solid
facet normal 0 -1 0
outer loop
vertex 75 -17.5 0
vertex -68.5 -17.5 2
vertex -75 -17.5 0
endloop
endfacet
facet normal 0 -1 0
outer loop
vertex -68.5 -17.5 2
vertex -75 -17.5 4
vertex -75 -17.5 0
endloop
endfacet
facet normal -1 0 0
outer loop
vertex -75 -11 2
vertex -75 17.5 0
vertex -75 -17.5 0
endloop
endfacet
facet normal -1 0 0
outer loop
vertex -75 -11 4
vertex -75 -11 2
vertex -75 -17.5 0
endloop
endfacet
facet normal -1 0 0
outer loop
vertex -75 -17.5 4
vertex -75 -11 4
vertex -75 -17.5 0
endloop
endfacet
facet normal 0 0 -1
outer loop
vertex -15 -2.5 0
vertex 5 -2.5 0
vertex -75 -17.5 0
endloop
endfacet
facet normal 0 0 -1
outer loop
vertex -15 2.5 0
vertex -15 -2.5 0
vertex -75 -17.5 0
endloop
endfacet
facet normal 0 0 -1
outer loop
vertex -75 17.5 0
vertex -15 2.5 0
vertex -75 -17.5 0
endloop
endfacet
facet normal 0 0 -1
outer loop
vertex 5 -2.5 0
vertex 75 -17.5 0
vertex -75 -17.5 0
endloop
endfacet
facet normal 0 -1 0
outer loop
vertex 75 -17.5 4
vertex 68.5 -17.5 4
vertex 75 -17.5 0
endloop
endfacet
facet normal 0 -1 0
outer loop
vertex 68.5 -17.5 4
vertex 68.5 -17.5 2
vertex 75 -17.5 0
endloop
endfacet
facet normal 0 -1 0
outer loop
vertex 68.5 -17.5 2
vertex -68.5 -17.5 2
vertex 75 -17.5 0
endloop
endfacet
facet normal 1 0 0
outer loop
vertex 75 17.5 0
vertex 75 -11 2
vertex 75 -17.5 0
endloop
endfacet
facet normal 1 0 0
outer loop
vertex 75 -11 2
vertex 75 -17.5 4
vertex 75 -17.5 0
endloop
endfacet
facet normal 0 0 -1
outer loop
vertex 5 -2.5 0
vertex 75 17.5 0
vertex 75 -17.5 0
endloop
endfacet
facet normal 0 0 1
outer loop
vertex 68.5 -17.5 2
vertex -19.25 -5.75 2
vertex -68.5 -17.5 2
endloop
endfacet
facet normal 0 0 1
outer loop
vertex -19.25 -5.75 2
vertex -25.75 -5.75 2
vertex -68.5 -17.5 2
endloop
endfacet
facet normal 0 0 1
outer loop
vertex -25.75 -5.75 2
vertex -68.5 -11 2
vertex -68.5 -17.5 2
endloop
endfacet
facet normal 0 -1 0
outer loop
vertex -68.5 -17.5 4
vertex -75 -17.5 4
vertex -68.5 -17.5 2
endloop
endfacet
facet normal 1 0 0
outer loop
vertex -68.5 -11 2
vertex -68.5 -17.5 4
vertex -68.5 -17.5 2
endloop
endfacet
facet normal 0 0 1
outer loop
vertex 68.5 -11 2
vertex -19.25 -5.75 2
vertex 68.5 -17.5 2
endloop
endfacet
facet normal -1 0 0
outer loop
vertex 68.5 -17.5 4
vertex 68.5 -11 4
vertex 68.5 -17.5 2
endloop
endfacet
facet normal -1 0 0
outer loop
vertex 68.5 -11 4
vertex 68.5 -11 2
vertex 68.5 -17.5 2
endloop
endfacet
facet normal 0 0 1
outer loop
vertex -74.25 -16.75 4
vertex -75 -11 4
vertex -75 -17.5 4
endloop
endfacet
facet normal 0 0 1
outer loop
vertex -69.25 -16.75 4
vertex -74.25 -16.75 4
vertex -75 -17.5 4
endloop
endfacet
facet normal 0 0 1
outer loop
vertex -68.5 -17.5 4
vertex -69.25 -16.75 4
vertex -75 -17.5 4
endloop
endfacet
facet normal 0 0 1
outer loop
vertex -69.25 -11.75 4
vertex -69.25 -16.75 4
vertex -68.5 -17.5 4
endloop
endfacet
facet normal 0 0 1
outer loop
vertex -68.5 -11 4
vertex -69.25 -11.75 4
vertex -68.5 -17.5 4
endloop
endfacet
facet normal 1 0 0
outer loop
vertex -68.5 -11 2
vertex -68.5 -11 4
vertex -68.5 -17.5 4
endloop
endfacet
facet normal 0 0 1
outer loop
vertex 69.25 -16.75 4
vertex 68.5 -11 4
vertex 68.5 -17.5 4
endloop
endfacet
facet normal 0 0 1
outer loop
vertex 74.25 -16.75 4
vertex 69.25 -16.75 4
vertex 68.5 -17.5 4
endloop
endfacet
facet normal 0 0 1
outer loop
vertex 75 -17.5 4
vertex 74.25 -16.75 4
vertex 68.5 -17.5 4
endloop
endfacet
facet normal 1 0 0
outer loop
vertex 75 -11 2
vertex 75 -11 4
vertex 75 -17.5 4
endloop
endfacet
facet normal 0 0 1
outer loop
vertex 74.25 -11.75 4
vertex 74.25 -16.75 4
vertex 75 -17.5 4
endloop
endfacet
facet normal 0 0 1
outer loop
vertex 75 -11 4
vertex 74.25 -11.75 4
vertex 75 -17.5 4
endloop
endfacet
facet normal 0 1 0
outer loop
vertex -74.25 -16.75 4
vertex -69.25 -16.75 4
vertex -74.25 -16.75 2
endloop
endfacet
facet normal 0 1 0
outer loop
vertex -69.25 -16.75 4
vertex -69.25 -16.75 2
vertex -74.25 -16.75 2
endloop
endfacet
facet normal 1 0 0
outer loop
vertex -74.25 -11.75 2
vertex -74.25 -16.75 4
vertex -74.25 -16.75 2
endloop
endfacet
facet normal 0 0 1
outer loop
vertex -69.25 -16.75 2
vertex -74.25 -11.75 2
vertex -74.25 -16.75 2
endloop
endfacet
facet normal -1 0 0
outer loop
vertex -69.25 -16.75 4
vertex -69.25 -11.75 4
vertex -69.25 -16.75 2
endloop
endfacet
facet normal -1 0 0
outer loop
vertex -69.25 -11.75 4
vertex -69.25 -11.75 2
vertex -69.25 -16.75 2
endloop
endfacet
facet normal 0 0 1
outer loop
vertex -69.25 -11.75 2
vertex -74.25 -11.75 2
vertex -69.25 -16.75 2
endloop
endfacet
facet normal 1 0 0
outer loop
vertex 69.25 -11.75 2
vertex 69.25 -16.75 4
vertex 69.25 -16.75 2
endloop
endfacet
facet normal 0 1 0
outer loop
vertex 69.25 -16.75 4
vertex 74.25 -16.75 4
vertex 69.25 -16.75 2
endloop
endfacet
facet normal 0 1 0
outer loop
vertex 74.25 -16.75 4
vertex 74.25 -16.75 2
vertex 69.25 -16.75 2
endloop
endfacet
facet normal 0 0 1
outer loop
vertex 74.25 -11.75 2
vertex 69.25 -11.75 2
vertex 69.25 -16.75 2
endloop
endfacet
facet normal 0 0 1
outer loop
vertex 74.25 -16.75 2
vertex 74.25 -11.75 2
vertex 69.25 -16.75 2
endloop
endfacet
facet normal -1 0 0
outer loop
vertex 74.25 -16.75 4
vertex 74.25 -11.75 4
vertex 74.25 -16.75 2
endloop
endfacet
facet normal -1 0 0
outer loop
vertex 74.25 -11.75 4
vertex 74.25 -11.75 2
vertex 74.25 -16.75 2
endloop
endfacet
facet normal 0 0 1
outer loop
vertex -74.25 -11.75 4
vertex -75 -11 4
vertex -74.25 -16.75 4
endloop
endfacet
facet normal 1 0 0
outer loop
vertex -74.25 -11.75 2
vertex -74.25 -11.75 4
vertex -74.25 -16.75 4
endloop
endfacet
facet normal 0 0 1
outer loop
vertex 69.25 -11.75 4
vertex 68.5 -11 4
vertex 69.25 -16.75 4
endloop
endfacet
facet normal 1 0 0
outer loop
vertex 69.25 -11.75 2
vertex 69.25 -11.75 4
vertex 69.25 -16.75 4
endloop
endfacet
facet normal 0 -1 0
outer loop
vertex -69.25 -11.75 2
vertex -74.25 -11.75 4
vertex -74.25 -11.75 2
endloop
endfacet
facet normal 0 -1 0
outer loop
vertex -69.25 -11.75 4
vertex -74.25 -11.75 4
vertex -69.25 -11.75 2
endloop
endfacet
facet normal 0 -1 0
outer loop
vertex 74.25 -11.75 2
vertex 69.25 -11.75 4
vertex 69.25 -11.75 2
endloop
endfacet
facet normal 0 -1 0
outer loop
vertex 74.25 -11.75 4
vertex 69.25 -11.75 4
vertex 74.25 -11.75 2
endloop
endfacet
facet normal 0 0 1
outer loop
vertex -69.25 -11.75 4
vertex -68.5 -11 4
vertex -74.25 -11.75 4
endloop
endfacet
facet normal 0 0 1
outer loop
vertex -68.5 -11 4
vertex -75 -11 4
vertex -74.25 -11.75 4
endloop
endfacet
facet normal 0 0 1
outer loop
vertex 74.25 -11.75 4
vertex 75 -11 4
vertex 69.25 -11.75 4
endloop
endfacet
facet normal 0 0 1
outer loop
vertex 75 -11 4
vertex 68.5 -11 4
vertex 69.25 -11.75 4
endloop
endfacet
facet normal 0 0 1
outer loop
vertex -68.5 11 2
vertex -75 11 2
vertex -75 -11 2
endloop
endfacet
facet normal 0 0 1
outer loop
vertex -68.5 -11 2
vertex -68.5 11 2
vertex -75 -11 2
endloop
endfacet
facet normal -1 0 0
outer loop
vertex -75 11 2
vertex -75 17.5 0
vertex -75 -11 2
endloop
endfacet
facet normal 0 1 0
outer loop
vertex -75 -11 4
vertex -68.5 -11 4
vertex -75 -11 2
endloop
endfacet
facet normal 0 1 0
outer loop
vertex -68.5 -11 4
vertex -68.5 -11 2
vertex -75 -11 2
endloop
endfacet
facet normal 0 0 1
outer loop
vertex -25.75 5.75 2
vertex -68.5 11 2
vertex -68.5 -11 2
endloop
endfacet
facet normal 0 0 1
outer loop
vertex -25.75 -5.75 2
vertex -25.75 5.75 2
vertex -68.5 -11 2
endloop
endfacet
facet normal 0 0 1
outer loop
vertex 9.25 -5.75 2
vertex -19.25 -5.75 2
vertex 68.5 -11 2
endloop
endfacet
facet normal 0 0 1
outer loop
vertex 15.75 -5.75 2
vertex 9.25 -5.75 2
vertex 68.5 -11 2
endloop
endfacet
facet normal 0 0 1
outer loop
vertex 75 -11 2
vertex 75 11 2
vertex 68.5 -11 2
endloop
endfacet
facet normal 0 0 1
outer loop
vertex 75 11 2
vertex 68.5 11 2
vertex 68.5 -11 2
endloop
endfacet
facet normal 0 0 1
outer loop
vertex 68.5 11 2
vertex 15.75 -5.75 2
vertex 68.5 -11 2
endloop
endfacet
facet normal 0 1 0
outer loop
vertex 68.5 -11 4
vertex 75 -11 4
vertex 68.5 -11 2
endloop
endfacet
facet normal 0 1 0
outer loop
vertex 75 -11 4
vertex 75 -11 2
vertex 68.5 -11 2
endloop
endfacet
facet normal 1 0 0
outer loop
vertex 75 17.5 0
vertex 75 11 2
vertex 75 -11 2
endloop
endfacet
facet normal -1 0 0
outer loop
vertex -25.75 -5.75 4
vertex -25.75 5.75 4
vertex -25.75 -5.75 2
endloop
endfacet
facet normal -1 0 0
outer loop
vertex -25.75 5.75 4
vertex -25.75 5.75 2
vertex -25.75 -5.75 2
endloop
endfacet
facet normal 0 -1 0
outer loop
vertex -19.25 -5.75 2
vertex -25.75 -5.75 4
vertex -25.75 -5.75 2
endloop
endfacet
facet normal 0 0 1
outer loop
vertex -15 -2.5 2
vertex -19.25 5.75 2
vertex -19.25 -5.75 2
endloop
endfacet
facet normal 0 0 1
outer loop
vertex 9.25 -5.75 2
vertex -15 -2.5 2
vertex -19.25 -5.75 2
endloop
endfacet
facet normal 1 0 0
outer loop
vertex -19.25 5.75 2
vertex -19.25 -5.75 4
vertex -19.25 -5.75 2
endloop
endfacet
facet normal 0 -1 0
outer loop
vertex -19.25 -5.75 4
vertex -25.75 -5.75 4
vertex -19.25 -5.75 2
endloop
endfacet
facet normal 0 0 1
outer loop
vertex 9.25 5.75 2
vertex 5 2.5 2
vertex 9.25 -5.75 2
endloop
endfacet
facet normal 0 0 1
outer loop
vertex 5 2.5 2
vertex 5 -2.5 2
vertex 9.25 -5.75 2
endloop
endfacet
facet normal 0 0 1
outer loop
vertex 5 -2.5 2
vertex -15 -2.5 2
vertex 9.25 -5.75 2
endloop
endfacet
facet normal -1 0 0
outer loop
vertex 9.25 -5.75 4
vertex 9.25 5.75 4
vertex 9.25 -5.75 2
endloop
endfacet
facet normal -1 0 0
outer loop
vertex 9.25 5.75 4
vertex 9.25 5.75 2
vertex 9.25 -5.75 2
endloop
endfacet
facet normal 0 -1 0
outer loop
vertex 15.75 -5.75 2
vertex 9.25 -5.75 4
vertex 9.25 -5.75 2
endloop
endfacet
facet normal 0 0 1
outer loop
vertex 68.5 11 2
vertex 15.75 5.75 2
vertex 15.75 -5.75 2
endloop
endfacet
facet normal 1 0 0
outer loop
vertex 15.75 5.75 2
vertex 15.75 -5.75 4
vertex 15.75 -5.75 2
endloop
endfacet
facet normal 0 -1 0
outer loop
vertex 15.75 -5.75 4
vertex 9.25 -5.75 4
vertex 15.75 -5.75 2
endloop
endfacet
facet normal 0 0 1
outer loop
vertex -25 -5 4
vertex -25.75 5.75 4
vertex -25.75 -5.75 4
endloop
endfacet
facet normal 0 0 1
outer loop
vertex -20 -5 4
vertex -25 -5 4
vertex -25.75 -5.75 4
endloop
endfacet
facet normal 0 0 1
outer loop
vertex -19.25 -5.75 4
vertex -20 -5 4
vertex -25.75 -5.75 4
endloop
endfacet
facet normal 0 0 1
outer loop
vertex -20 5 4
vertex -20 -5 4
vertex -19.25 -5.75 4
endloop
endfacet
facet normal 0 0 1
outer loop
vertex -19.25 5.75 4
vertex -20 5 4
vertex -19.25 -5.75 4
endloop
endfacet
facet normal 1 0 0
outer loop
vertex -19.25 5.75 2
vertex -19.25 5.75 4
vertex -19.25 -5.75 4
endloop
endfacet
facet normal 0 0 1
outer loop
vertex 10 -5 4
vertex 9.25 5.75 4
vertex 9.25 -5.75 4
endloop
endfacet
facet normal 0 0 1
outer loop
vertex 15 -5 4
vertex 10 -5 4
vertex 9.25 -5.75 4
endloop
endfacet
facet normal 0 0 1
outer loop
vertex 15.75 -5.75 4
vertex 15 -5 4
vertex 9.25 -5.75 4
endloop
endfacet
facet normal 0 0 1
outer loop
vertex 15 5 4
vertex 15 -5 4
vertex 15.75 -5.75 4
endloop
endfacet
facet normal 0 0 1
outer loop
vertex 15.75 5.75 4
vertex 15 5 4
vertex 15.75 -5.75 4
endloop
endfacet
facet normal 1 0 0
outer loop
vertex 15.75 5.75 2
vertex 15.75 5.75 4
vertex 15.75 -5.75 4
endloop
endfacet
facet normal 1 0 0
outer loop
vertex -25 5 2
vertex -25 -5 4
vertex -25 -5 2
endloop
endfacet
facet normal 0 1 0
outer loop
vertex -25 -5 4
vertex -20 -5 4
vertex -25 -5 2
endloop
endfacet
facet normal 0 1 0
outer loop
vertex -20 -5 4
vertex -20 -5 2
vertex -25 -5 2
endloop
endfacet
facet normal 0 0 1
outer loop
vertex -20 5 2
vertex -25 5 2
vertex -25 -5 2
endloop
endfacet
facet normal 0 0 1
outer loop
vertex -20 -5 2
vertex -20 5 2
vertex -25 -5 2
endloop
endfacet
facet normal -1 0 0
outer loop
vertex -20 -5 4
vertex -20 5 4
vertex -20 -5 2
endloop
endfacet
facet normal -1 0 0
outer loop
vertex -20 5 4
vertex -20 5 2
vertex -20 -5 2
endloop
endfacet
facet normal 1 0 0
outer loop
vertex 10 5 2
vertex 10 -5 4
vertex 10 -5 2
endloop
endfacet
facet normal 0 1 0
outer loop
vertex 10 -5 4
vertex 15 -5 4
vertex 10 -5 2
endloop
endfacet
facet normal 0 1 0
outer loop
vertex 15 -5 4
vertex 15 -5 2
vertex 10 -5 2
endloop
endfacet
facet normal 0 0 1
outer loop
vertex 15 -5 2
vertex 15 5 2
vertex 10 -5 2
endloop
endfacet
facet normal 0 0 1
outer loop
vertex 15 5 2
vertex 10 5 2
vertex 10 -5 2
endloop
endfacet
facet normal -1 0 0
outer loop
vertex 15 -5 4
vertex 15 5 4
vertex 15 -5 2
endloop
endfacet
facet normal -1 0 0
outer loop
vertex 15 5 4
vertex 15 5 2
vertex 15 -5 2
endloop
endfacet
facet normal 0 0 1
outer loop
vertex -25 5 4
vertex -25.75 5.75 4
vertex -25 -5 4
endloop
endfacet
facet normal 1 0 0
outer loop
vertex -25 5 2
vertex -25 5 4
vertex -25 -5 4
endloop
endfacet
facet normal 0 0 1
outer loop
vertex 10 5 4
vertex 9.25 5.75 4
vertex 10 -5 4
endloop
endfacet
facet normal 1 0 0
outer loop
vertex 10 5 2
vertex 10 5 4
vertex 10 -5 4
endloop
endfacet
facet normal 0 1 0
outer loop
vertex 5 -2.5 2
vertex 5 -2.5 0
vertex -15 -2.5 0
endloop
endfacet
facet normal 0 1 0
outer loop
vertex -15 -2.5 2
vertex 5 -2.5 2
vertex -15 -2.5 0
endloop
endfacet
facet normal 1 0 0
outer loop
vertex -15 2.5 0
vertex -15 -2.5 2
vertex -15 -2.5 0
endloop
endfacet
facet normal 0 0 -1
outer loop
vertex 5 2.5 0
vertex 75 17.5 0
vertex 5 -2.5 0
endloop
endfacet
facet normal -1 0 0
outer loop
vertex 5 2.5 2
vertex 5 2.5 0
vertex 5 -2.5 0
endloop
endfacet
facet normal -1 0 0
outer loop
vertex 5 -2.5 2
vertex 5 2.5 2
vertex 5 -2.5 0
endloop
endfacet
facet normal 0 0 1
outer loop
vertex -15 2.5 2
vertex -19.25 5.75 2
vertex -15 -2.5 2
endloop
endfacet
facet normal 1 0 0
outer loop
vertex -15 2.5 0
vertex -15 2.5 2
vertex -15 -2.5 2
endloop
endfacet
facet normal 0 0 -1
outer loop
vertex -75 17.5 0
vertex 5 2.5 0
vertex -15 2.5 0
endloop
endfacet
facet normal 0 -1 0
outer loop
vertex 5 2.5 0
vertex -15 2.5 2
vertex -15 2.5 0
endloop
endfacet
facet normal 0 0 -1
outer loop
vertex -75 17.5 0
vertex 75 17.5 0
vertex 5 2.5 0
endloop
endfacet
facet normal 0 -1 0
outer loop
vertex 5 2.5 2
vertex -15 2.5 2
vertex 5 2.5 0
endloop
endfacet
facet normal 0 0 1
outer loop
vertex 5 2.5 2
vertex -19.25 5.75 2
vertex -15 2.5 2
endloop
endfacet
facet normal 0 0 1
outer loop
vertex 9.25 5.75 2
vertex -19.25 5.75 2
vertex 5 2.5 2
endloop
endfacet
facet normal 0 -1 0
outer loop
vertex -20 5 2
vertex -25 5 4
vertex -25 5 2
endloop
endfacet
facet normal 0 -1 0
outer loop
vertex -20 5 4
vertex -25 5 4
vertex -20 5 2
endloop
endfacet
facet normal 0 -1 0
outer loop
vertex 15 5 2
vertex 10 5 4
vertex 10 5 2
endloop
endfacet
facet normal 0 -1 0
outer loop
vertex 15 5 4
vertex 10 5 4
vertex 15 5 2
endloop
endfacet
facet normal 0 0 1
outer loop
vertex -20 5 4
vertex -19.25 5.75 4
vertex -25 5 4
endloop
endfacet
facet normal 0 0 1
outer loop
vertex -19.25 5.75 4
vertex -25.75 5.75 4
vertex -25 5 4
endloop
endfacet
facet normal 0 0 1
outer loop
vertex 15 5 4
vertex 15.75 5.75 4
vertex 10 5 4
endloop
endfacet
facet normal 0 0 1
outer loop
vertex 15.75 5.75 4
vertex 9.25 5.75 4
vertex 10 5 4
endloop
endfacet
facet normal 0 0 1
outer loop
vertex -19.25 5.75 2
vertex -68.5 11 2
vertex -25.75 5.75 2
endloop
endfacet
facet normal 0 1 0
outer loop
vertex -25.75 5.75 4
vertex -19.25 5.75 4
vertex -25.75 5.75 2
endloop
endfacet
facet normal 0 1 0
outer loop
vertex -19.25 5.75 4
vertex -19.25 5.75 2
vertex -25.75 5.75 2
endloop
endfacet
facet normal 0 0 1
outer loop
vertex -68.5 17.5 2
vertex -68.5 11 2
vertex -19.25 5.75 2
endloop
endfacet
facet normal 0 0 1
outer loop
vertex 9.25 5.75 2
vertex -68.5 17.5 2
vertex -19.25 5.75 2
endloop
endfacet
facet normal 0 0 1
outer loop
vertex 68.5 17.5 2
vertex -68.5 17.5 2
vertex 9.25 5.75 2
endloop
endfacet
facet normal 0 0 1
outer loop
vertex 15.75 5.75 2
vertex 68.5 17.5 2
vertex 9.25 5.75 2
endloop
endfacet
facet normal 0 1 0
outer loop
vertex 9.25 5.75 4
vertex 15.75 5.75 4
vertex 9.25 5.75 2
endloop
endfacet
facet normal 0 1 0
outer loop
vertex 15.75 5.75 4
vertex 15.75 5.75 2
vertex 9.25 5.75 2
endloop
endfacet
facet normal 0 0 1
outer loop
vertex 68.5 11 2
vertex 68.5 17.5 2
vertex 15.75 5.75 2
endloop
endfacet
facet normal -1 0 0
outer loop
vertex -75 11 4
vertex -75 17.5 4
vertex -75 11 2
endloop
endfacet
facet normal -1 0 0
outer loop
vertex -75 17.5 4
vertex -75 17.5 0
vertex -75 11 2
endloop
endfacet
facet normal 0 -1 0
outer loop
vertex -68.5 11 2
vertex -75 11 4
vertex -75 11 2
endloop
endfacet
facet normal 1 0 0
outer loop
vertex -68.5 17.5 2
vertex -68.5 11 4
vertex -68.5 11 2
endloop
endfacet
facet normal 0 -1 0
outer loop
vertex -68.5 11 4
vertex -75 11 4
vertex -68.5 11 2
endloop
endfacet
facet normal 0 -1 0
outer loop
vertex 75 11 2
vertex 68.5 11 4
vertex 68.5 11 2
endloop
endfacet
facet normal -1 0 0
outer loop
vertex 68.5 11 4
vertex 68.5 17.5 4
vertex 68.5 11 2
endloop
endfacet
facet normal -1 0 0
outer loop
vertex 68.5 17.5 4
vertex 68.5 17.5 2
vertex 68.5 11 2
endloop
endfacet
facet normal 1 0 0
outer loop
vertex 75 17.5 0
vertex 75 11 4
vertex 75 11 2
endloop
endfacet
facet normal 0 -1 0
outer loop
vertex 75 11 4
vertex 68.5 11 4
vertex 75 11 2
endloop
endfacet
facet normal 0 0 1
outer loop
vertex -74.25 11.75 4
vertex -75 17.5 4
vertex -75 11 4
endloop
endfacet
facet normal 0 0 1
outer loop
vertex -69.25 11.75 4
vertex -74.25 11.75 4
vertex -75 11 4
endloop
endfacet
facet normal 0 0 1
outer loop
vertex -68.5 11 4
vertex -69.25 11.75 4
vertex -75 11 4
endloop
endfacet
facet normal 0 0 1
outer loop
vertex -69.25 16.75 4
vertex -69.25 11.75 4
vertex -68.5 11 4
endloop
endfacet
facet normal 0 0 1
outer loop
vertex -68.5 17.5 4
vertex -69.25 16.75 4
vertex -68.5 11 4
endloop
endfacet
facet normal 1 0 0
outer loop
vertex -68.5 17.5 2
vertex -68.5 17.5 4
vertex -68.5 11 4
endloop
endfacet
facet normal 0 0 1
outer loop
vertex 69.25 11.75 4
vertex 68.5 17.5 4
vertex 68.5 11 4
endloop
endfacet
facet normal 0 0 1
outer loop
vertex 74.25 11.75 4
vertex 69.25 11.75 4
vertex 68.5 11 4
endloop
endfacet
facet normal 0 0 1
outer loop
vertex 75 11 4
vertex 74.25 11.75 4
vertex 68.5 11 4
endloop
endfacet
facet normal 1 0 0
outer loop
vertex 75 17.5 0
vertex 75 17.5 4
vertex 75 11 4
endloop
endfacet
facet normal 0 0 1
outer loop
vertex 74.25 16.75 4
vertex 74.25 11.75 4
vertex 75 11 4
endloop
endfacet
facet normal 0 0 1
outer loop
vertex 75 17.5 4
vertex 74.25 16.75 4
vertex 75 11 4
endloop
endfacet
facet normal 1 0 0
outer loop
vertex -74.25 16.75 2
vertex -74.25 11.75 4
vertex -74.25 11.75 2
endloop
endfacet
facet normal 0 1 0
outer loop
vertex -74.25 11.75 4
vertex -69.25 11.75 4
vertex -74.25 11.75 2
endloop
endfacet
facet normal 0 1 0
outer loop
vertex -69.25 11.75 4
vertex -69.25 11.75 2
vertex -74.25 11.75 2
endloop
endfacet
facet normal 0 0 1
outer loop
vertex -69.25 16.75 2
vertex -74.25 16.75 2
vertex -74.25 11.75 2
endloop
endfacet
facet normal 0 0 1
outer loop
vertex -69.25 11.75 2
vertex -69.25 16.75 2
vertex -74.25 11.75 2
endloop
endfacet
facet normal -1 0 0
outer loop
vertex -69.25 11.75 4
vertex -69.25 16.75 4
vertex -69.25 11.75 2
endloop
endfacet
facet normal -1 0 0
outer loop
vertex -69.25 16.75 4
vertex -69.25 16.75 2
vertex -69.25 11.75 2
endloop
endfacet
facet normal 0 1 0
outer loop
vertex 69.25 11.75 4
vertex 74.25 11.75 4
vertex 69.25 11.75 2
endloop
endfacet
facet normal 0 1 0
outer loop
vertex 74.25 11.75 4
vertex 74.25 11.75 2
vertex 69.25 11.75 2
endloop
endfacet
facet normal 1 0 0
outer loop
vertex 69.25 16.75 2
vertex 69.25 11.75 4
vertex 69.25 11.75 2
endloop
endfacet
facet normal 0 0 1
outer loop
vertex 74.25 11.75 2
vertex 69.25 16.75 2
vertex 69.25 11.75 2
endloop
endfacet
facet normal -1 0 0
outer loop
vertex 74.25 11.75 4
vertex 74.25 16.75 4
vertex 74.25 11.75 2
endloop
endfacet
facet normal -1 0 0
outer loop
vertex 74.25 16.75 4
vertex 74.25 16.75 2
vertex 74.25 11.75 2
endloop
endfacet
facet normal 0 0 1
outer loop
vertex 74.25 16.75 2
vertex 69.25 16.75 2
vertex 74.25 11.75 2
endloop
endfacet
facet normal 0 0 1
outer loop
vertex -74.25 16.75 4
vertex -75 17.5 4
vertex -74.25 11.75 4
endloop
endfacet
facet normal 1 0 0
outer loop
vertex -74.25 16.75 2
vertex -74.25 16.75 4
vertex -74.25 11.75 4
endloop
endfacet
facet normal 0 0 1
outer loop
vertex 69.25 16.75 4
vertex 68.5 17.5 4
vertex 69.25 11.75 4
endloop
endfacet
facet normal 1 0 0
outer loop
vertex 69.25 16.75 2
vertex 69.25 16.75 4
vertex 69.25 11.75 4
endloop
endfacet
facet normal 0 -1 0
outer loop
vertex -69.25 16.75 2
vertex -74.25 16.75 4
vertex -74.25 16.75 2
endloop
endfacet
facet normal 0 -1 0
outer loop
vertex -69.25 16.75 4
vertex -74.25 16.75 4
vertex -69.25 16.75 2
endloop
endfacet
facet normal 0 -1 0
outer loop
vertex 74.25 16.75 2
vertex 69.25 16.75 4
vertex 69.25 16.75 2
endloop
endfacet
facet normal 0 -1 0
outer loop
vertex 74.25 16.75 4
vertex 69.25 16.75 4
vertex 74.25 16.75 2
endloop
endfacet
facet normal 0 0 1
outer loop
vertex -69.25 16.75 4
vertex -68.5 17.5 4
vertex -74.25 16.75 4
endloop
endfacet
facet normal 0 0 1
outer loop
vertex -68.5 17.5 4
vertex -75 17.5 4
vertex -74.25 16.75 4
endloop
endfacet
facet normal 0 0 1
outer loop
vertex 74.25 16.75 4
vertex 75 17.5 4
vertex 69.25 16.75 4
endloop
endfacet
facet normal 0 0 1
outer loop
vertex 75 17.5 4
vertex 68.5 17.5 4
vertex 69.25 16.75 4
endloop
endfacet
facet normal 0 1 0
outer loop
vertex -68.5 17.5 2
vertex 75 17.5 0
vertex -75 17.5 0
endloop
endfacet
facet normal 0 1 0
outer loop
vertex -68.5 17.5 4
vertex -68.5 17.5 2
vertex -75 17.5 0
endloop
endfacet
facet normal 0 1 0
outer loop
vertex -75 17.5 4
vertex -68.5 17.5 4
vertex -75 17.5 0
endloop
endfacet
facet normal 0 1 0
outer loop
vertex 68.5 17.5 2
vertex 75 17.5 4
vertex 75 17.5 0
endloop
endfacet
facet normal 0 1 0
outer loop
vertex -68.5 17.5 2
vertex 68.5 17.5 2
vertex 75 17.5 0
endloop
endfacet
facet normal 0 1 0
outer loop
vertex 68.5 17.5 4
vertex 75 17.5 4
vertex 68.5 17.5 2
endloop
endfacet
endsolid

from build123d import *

# Parameters (mm, degrees)
SKICA1_W                 = 150
SKICA1_H                 = 35
P_IDAT_VYSUNUT_M2_DEPTH  = 2
SKICA2_W                 = 6.5
SKICA2_H                 = 11.5
SKICA2_W_2               = 5
SKICA2_H_2               = 10
P_IDAT_VYSUNUT_M3_DEPTH  = 2
SKICA3_W                 = 6.5
SKICA3_H                 = 6.5
SKICA3_W_2               = 5
SKICA3_H_2               = 5
P_IDAT_VYSUNUT_M4_DEPTH  = 2
SKICA4_W                 = 20
SKICA4_H                 = 5
ODEBRAT_VYSUNUT_M1_DEPTH = 2


with BuildPart() as part:
    # Skica1 → Přidat vysunutím2 (new body)
    with BuildSketch(Plane.XY):
        Rectangle(SKICA1_W, SKICA1_H)
    extrude(amount=P_IDAT_VYSUNUT_M2_DEPTH)

    # Skica2 → Přidat vysunutím3 (add)
    with BuildSketch(Plane.XY.offset(2)):
        with Locations((-22.5, 0)):
            Rectangle(SKICA2_W, SKICA2_H)
        with Locations((-22.5, 0)):
            Rectangle(SKICA2_W_2, SKICA2_H_2, mode=Mode.SUBTRACT)
        with Locations((12.5, 0)):
            Rectangle(SKICA2_W, SKICA2_H)
        with Locations((12.5, 0)):
            Rectangle(SKICA2_W_2, SKICA2_H_2, mode=Mode.SUBTRACT)
    extrude(amount=P_IDAT_VYSUNUT_M3_DEPTH)

    # Skica3 → Přidat vysunutím4 (add)
    with BuildSketch(Plane.XY.offset(2)):
        with Locations((-71.75, 14.25)):
            Rectangle(SKICA3_W, SKICA3_H)
        with Locations((-71.75, 14.25)):
            Rectangle(SKICA3_W_2, SKICA3_H_2, mode=Mode.SUBTRACT)
        with Locations((71.75, 14.25)):
            Rectangle(SKICA3_W, SKICA3_H)
        with Locations((71.75, 14.25)):
            Rectangle(SKICA3_W_2, SKICA3_H_2, mode=Mode.SUBTRACT)
        with Locations((-71.75, -14.25)):
            Rectangle(SKICA3_W, SKICA3_H)
        with Locations((-71.75, -14.25)):
            Rectangle(SKICA3_W_2, SKICA3_H_2, mode=Mode.SUBTRACT)
        with Locations((71.75, -14.25)):
            Rectangle(SKICA3_W, SKICA3_H)
        with Locations((71.75, -14.25)):
            Rectangle(SKICA3_W_2, SKICA3_H_2, mode=Mode.SUBTRACT)
    extrude(amount=P_IDAT_VYSUNUT_M4_DEPTH)

    # Skica4 → Odebrat vysunutím1 (cut)
    with BuildSketch(Plane.XY.offset(2)):
        with Locations((-5, 0)):
            Rectangle(SKICA4_W, SKICA4_H)
    extrude(amount=-ODEBRAT_VYSUNUT_M1_DEPTH, mode=Mode.SUBTRACT)


solid = part.part
